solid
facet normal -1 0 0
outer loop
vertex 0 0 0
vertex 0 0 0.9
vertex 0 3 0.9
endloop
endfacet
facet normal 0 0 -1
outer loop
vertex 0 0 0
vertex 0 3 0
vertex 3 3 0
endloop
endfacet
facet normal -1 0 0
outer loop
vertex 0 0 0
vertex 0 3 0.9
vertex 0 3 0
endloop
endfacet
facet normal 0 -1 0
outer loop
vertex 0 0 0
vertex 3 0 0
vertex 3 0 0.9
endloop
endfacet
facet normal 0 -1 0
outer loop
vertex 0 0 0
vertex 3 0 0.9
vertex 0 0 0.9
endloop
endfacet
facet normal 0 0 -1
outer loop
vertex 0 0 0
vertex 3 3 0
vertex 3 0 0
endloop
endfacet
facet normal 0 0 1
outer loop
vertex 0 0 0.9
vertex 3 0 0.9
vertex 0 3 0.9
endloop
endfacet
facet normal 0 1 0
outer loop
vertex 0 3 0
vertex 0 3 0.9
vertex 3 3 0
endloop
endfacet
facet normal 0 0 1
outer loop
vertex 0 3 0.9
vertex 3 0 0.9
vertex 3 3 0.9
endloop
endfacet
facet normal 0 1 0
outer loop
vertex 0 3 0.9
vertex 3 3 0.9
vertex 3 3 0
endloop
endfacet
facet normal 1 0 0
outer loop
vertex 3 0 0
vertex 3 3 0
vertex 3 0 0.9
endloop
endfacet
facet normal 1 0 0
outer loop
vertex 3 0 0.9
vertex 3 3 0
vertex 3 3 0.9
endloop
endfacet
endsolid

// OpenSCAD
/* Warning, this is a very basic generator with a lot of approximation 
input data : [VDFN, JMA, 3x3x0.9mm, 8, , C, C04-01021C]
generated by com.zoubworld.electronics.cad.model3d.Basic
Date : Sun Feb 15 10:50:49 CET 2026
*/

//body
color("black")
translate([0,0,0])
cube([3.0,3.0,0.9], center=false);
